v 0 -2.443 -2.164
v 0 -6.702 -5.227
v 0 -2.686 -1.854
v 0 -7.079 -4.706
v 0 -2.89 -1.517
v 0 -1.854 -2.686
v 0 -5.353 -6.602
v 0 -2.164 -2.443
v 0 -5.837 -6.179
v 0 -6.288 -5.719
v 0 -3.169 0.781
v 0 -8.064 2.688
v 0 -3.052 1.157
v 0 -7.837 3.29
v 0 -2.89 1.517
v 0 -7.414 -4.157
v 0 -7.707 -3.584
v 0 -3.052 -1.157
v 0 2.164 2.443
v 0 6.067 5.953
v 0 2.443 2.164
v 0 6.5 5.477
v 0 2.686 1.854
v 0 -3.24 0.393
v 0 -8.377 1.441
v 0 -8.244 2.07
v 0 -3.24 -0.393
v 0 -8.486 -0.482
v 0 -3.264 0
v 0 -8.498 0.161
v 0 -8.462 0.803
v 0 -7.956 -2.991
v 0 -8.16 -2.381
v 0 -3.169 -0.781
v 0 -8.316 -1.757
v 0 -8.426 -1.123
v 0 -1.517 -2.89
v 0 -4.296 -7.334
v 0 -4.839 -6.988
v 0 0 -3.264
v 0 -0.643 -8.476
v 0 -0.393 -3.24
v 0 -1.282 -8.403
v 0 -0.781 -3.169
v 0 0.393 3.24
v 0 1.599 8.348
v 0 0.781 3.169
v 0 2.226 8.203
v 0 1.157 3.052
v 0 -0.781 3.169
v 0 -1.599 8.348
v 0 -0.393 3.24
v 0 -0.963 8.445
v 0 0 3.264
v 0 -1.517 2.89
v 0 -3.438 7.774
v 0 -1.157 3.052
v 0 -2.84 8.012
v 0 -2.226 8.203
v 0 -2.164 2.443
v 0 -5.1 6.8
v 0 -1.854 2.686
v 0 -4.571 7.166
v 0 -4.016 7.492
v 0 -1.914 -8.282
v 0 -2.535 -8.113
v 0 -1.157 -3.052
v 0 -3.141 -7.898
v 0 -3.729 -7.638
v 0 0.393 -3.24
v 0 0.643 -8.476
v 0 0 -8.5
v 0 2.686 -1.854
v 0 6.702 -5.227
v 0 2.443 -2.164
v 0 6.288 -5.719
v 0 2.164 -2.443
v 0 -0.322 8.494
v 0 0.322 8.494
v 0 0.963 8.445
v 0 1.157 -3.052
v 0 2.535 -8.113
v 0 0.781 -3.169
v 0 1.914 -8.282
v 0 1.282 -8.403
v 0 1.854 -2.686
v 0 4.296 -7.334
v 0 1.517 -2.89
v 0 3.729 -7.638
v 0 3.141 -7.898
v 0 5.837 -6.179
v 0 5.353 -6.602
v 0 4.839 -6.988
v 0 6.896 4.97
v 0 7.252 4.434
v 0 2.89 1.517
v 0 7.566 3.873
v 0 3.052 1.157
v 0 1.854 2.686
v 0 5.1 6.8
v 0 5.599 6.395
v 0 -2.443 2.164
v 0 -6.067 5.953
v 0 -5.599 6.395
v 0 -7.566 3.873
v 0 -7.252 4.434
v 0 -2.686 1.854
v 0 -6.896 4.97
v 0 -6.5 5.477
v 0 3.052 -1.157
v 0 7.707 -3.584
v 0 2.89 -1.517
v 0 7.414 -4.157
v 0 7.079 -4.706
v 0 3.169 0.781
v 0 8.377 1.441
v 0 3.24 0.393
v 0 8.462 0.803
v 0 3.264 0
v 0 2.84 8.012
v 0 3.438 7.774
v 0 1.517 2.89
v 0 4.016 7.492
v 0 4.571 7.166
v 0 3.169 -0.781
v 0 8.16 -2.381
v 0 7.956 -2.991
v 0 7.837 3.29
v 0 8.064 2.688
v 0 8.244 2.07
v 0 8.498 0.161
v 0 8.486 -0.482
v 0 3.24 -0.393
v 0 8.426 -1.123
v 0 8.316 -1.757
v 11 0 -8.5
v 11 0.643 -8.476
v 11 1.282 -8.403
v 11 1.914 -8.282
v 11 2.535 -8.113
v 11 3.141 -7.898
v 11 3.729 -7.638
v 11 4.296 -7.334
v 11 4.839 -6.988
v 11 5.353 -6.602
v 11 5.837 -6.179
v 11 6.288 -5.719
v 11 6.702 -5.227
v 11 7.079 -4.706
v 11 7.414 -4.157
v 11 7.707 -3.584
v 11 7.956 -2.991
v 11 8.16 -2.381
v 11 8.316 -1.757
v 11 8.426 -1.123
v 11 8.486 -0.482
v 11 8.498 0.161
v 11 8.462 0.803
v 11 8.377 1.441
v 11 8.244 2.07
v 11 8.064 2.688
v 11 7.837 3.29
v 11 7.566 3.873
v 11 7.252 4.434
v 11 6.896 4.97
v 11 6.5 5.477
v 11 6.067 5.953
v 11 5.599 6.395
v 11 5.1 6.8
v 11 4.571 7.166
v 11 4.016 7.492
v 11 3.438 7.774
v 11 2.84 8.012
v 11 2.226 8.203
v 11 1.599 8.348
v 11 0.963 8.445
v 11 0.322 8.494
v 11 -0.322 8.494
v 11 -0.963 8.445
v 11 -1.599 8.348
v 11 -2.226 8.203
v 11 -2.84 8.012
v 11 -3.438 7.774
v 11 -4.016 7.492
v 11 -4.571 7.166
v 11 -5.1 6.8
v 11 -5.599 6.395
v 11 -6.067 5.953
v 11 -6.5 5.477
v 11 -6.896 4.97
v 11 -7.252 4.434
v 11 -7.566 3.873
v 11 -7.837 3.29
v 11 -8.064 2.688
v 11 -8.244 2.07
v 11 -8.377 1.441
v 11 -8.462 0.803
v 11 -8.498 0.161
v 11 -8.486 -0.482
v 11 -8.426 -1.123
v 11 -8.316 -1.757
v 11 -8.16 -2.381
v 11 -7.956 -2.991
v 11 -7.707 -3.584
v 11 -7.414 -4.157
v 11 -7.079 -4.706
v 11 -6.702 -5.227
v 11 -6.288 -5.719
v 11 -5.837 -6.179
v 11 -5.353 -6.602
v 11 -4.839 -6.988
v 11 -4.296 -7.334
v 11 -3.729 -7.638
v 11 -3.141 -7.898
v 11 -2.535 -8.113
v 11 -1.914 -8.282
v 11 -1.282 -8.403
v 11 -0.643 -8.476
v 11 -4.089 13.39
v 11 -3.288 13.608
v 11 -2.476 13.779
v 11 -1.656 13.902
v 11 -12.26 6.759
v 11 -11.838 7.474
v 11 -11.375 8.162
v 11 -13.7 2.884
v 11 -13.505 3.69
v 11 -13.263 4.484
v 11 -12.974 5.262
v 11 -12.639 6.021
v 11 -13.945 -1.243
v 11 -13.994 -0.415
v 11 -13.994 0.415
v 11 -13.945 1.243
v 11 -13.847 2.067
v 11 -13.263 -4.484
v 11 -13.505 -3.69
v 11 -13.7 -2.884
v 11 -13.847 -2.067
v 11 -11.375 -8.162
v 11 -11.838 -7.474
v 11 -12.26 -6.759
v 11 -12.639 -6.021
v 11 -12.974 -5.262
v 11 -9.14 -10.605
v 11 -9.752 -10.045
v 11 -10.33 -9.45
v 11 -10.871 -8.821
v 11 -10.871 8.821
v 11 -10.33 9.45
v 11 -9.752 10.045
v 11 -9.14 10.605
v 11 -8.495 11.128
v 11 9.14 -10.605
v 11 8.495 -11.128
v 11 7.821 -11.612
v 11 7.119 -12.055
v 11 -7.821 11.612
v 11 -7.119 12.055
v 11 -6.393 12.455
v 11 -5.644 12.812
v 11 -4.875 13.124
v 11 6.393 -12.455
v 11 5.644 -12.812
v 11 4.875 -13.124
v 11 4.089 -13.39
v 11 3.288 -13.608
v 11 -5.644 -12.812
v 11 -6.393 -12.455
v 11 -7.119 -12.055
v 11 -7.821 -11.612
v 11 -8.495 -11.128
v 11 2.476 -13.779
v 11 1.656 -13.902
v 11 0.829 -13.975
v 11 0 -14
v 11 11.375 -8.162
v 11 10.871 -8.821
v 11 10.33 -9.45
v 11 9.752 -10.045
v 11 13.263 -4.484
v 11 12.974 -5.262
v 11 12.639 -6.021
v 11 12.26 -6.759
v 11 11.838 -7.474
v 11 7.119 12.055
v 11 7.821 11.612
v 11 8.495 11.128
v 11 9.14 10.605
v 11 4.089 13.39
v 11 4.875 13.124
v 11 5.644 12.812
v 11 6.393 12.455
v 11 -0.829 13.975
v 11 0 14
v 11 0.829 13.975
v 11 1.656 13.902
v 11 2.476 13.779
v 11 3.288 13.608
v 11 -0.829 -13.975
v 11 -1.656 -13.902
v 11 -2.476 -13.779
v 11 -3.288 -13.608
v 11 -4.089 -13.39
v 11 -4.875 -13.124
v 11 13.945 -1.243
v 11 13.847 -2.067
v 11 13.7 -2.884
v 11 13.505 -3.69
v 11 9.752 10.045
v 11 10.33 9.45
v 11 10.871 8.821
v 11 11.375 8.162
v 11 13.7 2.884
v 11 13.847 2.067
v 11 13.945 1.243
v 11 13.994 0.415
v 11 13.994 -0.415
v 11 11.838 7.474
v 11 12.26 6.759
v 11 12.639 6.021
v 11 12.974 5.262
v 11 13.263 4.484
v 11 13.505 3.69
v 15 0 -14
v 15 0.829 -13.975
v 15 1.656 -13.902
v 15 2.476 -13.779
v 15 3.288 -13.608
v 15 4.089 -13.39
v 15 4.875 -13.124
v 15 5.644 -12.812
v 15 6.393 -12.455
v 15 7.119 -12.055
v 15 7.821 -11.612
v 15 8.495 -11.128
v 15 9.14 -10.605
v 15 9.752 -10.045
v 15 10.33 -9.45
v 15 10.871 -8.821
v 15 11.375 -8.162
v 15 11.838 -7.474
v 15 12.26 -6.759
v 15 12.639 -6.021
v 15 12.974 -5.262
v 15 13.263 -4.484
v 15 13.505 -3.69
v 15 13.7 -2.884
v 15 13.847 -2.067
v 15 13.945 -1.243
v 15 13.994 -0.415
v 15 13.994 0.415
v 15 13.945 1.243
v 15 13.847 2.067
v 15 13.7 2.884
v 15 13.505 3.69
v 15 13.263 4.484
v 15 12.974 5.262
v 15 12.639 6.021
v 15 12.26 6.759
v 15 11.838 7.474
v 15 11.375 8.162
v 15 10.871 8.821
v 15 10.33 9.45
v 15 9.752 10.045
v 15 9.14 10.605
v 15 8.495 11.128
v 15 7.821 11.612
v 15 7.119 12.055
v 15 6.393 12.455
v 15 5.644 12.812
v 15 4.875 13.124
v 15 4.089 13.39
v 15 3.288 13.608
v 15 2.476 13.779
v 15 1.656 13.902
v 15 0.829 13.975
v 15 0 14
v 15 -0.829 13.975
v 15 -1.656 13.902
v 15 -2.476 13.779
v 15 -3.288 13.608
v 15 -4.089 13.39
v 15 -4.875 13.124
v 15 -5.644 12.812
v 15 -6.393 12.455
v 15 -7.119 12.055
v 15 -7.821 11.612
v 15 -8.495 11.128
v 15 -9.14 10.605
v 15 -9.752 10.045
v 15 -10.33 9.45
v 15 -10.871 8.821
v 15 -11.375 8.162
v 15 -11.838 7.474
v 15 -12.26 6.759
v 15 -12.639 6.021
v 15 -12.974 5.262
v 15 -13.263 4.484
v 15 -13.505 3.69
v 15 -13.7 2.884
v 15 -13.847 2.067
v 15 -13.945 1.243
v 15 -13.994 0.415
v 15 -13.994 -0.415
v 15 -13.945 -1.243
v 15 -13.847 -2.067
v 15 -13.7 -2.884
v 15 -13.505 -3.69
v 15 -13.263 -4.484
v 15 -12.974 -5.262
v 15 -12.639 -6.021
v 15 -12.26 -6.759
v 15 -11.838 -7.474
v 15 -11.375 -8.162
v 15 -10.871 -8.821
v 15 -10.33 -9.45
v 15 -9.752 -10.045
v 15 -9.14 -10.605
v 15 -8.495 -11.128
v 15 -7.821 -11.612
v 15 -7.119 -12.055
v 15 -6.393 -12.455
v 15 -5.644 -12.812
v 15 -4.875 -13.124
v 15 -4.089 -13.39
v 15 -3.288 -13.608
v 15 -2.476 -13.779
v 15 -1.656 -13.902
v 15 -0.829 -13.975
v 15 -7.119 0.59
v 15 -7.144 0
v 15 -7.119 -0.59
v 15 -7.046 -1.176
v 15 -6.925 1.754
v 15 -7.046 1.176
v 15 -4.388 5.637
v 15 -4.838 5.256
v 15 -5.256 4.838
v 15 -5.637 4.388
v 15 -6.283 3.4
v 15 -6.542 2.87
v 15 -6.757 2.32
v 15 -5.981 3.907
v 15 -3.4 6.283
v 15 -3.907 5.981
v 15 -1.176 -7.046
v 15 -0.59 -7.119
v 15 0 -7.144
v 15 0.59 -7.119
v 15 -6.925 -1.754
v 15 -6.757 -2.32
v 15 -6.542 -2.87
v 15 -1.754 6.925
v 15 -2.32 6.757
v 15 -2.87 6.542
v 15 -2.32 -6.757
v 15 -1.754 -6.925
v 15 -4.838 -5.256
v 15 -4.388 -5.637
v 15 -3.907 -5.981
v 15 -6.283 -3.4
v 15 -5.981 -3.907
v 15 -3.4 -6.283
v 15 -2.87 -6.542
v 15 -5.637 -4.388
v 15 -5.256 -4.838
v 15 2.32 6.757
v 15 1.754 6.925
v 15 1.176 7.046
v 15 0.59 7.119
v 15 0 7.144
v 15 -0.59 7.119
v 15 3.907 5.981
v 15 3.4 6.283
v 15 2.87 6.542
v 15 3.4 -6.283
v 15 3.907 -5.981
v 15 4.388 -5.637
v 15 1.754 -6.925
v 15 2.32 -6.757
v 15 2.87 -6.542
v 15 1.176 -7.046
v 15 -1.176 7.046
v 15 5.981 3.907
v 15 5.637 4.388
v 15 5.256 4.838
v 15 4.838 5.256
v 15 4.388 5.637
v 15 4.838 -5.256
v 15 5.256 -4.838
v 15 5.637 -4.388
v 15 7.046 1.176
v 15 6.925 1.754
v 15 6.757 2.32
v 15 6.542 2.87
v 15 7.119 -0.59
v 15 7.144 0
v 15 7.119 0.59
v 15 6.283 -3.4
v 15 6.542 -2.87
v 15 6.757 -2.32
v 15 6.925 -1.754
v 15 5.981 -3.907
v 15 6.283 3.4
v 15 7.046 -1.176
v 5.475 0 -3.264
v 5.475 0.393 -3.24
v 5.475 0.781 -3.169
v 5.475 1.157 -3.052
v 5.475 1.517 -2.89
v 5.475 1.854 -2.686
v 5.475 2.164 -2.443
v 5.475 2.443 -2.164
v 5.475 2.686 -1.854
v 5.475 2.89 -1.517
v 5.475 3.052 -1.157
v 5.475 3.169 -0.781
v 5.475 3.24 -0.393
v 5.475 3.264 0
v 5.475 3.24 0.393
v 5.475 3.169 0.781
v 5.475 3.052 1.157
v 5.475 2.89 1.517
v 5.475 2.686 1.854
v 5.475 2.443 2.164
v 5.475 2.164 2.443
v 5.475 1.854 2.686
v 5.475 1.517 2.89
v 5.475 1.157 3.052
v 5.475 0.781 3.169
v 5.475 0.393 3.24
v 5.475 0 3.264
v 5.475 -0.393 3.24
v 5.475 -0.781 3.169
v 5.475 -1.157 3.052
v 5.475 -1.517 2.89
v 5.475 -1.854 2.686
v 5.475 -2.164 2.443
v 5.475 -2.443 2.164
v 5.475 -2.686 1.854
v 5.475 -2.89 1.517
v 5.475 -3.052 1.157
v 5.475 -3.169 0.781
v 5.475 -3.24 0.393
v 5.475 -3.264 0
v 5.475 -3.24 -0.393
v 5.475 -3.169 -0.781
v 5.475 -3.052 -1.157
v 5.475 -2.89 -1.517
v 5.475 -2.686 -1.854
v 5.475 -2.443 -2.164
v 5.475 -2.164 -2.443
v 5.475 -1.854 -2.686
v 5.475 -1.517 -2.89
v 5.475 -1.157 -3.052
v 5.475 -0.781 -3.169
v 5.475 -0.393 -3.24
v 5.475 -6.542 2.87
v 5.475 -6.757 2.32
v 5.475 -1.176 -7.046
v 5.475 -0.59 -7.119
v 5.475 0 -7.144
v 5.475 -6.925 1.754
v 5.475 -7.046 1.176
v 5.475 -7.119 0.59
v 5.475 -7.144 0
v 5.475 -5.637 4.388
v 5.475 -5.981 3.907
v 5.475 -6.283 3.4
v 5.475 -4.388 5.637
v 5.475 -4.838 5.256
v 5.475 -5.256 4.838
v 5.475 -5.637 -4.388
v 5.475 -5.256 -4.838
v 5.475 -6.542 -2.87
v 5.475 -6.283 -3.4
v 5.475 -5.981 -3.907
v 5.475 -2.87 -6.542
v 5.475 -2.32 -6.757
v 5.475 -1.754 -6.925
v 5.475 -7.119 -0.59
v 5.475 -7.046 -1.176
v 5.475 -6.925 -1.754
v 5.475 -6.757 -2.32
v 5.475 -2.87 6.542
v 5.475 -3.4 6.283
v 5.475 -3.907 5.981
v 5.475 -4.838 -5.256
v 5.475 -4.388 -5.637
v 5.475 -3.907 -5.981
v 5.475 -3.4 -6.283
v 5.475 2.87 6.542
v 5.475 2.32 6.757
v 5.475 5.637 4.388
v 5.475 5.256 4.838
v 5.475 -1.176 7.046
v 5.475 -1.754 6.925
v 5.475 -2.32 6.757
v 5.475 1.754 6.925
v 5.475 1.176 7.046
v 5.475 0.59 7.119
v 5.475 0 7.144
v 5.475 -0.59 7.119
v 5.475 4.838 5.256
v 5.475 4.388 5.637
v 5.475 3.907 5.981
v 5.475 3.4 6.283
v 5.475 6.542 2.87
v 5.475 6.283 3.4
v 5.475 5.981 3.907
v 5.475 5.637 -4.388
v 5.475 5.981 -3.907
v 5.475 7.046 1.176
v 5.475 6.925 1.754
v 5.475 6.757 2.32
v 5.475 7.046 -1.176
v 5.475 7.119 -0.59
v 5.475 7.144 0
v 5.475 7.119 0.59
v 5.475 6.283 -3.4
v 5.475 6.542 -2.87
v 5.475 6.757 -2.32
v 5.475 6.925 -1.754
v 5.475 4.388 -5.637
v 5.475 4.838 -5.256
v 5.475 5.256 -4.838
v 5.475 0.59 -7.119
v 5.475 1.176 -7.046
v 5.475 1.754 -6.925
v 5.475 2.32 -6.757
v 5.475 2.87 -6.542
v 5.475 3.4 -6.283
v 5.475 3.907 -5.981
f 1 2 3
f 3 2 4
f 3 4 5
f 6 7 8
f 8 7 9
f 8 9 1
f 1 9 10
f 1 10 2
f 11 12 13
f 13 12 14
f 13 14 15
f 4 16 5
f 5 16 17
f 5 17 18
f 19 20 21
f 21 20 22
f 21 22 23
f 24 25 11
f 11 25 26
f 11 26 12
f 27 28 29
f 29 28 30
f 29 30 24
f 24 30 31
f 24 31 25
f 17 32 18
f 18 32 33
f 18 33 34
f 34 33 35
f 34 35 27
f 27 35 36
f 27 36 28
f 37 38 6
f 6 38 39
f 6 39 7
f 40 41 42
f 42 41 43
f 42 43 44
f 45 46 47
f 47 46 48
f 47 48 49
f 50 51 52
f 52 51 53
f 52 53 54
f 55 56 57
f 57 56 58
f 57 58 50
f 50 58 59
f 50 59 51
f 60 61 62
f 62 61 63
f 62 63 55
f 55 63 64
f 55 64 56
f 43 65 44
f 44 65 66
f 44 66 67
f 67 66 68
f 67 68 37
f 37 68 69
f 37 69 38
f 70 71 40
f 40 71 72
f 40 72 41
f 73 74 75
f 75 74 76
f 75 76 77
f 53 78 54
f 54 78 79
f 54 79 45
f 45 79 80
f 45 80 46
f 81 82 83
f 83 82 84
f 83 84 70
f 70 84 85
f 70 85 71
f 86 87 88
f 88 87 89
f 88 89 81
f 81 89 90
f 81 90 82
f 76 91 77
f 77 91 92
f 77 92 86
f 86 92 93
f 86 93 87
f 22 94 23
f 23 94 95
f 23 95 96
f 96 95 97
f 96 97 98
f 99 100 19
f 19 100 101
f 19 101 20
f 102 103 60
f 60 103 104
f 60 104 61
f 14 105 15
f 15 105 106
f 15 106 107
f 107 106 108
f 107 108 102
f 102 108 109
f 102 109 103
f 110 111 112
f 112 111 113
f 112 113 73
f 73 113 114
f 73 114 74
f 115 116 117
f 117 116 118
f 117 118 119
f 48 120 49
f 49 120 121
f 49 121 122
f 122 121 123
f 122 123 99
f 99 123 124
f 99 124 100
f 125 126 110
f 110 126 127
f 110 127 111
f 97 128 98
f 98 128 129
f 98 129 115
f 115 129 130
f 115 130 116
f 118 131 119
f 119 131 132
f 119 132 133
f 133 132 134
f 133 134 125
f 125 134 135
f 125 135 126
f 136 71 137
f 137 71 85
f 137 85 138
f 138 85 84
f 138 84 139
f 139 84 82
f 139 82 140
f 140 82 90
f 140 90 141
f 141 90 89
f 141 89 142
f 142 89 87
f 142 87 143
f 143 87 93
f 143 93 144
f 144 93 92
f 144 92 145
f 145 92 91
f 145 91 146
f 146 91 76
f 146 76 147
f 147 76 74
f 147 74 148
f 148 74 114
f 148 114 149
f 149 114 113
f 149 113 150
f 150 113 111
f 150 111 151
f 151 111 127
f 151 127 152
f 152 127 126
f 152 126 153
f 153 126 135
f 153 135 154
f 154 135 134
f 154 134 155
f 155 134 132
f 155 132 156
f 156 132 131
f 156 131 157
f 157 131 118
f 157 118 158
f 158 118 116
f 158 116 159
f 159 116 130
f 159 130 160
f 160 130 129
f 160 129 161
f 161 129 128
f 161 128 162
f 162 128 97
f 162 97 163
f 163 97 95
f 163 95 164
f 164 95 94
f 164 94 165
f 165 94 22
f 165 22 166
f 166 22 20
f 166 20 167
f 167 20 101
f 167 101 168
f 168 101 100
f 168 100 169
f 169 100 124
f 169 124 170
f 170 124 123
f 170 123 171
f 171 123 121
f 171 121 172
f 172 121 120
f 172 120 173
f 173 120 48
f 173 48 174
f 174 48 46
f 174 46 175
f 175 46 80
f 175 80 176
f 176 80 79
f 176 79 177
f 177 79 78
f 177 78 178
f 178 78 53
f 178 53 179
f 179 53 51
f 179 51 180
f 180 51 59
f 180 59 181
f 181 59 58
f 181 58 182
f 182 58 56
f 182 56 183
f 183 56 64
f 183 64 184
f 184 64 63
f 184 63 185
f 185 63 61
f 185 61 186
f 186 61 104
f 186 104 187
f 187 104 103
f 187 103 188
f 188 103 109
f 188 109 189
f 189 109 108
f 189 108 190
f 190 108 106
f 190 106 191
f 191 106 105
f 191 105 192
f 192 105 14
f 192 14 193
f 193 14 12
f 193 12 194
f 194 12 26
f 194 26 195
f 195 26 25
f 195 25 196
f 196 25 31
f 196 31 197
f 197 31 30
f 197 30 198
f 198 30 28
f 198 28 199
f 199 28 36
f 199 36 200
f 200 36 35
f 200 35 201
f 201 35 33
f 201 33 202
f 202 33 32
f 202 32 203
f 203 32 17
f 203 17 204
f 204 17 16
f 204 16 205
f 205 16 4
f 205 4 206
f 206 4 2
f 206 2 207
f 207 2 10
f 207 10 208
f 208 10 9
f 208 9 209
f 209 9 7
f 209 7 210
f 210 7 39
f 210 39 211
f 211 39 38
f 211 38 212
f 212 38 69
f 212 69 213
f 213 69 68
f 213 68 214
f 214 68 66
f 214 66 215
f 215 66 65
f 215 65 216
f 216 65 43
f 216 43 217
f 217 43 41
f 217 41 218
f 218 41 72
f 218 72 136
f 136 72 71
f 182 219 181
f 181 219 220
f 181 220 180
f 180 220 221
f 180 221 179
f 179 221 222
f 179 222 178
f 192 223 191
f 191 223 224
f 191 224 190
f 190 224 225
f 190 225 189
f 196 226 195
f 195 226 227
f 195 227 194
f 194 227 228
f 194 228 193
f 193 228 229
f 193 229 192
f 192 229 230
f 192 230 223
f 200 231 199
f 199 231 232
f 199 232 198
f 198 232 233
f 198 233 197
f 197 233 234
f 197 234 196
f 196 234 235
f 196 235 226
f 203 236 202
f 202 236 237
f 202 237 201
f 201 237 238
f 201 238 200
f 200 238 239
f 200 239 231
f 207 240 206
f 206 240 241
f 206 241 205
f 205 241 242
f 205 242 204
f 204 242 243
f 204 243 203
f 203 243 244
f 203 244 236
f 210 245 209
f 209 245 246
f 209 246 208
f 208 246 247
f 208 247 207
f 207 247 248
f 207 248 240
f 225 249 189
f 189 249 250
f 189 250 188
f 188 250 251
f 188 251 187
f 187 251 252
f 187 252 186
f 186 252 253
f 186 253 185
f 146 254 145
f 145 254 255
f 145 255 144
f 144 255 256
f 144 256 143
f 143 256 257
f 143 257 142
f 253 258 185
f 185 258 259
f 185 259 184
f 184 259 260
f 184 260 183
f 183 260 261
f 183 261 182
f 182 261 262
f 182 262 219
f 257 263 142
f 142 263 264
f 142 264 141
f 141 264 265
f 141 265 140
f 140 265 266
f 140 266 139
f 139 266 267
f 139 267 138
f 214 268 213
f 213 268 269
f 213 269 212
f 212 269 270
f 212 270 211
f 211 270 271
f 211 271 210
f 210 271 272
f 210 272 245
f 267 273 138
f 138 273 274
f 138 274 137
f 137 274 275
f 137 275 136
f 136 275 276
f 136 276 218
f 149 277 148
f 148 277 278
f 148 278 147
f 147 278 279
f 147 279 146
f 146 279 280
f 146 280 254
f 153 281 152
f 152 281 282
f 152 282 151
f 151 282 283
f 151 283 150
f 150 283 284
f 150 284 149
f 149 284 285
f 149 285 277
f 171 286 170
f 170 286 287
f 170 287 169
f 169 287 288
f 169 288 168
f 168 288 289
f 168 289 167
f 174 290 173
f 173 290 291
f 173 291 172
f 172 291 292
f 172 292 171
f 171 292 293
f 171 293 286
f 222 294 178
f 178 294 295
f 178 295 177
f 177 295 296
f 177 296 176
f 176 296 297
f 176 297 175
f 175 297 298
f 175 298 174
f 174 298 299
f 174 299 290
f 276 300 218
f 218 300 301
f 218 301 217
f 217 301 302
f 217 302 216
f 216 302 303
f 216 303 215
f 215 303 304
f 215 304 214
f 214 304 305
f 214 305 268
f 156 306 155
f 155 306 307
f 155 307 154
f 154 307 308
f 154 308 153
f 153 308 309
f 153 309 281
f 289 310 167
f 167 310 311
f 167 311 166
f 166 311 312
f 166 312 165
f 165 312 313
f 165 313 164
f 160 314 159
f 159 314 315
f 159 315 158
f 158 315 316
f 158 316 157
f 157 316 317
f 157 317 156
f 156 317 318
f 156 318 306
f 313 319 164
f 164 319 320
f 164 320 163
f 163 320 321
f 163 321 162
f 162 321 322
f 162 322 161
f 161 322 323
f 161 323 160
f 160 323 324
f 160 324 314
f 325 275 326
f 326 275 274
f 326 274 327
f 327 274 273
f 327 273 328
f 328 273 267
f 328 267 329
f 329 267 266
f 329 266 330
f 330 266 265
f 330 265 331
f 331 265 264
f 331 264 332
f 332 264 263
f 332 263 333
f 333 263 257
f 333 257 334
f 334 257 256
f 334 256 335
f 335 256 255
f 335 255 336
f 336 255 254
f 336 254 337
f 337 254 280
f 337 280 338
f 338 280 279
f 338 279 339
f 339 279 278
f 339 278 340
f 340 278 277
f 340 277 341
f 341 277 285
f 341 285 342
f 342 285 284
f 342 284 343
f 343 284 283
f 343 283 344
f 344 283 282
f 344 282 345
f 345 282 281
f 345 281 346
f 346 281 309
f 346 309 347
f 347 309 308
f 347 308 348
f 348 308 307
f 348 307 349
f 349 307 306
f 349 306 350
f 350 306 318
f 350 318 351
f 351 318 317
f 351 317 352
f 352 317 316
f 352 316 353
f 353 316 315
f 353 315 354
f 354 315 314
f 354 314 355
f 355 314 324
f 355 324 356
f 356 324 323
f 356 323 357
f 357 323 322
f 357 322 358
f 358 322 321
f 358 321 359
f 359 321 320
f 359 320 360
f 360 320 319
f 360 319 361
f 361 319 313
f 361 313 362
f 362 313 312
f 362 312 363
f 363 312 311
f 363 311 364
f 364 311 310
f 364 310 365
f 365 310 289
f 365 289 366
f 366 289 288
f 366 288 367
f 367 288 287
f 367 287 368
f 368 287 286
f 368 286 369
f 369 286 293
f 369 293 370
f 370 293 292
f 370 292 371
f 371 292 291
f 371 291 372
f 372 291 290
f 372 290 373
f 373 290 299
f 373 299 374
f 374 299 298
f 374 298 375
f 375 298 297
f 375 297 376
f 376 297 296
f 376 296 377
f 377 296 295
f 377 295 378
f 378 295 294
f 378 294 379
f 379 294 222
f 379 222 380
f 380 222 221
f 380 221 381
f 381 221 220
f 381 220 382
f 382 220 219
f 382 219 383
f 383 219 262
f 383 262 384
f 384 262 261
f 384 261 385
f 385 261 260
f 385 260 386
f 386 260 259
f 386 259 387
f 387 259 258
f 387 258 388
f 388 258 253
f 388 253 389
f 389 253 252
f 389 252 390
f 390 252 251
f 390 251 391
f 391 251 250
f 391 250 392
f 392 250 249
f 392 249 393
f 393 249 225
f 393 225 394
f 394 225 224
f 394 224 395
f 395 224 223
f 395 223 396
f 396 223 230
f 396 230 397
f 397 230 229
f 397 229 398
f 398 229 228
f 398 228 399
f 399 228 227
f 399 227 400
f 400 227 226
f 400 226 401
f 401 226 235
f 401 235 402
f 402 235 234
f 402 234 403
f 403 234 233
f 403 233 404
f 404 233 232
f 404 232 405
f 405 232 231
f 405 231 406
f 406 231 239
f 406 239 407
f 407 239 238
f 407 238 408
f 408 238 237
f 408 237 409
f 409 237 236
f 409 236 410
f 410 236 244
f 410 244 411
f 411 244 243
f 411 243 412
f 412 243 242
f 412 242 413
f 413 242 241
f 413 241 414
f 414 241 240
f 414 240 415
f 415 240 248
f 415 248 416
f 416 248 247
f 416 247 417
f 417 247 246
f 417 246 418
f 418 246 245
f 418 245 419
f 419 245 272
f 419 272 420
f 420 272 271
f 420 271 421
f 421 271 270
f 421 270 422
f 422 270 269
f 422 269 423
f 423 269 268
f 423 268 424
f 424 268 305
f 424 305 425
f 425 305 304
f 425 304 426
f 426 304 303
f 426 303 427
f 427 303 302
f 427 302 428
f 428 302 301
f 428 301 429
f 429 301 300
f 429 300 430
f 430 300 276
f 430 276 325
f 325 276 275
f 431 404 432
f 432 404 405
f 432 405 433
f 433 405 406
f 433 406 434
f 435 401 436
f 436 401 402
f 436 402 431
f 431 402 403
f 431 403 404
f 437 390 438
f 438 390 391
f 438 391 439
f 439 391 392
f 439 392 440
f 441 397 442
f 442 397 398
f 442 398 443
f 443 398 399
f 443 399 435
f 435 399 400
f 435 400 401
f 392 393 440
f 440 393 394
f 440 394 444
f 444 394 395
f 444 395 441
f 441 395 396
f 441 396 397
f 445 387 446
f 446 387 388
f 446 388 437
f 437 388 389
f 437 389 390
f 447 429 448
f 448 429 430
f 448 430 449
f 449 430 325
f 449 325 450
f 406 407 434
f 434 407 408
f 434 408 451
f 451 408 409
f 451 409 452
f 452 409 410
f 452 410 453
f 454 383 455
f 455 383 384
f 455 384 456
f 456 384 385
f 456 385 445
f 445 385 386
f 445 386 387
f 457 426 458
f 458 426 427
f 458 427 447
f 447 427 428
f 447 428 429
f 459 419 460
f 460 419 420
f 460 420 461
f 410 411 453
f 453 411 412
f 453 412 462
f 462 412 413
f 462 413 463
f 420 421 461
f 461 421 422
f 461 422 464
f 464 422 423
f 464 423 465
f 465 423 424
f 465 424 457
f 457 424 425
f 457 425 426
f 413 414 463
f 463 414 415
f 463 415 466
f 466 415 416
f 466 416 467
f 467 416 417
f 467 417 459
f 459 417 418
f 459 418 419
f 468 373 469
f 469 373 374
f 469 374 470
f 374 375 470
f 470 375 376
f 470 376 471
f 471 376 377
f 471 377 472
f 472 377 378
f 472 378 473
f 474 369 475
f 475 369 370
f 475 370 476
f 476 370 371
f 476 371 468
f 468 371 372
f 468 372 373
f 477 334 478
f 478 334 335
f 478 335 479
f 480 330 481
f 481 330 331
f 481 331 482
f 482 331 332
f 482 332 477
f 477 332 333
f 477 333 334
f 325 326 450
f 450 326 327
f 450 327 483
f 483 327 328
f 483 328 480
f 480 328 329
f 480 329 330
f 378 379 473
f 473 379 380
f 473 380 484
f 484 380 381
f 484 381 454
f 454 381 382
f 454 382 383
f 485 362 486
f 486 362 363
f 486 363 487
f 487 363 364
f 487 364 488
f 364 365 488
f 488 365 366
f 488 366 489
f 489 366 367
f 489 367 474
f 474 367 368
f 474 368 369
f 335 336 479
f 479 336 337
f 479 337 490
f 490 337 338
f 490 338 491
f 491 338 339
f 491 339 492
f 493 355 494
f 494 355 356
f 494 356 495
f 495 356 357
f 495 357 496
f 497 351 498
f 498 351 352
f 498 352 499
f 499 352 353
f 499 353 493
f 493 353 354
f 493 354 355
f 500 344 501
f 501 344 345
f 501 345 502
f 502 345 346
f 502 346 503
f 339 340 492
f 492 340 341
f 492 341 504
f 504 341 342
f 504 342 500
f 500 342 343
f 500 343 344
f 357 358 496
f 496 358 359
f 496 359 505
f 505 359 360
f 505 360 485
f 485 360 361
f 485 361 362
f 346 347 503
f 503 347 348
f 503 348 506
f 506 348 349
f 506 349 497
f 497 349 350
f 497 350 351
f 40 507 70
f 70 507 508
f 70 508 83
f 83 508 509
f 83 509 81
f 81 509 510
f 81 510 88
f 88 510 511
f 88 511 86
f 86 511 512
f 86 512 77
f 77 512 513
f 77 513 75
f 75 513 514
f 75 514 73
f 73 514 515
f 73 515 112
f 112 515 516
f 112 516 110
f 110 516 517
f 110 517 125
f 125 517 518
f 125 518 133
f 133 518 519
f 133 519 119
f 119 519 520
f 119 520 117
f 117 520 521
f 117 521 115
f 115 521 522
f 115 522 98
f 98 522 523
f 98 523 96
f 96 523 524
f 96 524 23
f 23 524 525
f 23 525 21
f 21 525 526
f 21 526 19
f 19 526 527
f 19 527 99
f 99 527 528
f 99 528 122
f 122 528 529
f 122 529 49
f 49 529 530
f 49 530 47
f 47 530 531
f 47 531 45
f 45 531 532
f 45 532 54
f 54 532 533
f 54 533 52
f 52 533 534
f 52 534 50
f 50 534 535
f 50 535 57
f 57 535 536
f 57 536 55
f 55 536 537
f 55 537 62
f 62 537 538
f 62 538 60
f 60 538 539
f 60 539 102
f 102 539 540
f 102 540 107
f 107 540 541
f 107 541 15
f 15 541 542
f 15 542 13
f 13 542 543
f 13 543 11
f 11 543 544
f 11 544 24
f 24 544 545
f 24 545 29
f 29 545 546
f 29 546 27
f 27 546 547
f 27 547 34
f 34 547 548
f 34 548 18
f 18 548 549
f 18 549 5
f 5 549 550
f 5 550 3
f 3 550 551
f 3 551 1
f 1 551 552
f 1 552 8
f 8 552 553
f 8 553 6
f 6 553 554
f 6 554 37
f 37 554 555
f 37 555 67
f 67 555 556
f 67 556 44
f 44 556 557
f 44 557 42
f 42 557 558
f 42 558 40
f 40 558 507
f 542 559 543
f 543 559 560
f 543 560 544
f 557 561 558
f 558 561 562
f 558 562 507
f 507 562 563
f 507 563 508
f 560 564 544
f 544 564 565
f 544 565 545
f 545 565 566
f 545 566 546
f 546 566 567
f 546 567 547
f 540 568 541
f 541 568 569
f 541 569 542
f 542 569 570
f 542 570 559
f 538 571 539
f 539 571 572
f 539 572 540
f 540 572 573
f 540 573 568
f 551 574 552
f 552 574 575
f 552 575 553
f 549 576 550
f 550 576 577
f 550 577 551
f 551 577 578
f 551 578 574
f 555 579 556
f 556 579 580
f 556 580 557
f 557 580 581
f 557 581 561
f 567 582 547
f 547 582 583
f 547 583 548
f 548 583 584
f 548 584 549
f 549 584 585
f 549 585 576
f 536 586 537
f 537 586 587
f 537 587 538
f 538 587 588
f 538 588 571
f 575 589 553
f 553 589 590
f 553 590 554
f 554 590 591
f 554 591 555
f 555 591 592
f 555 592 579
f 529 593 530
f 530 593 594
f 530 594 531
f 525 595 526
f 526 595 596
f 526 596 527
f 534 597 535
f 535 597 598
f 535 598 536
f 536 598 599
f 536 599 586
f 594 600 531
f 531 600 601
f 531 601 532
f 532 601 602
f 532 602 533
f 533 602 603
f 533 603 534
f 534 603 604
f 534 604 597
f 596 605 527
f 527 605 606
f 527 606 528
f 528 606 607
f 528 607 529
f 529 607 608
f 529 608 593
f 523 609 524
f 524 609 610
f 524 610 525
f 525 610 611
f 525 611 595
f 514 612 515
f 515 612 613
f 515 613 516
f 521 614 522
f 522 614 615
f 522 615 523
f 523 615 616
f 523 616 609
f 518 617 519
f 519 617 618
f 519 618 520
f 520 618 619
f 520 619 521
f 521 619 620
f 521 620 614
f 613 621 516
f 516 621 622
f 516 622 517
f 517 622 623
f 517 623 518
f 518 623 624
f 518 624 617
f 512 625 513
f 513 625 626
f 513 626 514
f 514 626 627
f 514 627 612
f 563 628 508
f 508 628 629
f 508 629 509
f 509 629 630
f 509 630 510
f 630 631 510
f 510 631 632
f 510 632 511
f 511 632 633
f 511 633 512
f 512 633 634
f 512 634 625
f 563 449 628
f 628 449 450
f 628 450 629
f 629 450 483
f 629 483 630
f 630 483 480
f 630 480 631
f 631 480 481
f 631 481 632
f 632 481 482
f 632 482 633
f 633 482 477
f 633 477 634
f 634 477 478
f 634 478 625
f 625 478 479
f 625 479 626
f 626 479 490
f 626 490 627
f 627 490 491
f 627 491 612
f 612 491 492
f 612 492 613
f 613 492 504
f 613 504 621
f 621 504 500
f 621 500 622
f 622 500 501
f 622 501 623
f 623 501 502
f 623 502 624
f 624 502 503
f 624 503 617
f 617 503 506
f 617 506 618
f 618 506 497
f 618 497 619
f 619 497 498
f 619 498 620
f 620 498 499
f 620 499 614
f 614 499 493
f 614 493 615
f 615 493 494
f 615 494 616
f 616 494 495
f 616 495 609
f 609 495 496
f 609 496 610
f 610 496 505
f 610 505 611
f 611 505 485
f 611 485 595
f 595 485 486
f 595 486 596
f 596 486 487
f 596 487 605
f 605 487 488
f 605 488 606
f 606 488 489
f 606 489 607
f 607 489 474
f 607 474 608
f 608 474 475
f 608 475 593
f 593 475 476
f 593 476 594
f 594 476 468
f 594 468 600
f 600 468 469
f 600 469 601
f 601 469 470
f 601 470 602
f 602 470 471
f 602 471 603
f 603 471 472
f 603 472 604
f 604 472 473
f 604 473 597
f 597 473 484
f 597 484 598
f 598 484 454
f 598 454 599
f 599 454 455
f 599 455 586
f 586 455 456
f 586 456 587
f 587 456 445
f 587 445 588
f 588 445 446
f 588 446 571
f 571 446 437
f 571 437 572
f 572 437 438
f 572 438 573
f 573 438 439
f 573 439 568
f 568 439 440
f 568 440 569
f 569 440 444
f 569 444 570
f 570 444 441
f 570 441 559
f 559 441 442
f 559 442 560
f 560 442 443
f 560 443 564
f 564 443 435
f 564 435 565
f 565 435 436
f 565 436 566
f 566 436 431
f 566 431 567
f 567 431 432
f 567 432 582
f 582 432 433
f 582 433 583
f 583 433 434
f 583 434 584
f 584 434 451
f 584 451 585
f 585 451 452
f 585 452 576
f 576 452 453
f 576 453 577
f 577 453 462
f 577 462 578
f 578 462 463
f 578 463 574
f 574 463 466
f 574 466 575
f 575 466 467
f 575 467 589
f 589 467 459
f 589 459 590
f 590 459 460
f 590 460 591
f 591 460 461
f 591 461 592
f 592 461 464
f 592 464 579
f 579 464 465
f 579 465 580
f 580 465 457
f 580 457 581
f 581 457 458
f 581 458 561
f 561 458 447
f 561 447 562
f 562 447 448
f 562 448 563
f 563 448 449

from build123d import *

# Parameters (mm, degrees)
CBORE_FOR_1_4_BINDING_HEAD_MACHINE_SCREW_D           = 6.5278
CBORE_FOR_1_4_BINDING_HEAD_MACHINE_SCREW_DEPTH       = 303
CBORE_FOR_1_4_BINDING_HEAD_MACHINE_SCREW_CBORE_D     = 14.2875
CBORE_FOR_1_4_BINDING_HEAD_MACHINE_SCREW_CBORE_DEPTH = 9.525
CBORE_FOR_1_4_BINDING_HEAD_MACHINE_SCREW_TIP         = 1.961148974


with BuildPart() as part:
    # Sketch1 → Revolve1 (revolve)
    with BuildSketch(Plane.XY, mode=Mode.PRIVATE) as revolve1_sk:
        Polygon((0, 0), (0, 8.5), (11, 8.5), (11, 14), (15, 14), (15, 0), align=None)
    revolve(revolve1_sk.sketch.rotate(Axis((0, 0, 0), (-1, 0, 0)), 90), axis=Axis((0, 0, 0), (-1, 0, 0)))

    # CBORE for 1/4 Binding Head Machine Screw1
    with Locations(Plane(origin=(15, 0, 0), x_dir=(0, 0, -1), z_dir=(1, 0, 0))):
        with Locations((0, 0)):
            CounterBoreHole(CBORE_FOR_1_4_BINDING_HEAD_MACHINE_SCREW_D / 2, CBORE_FOR_1_4_BINDING_HEAD_MACHINE_SCREW_CBORE_D / 2, CBORE_FOR_1_4_BINDING_HEAD_MACHINE_SCREW_CBORE_DEPTH, depth=CBORE_FOR_1_4_BINDING_HEAD_MACHINE_SCREW_DEPTH)
            with Locations((0, 0, -(CBORE_FOR_1_4_BINDING_HEAD_MACHINE_SCREW_DEPTH + CBORE_FOR_1_4_BINDING_HEAD_MACHINE_SCREW_TIP / 2))):  # 118° drill point
                Cone(0, CBORE_FOR_1_4_BINDING_HEAD_MACHINE_SCREW_D / 2, CBORE_FOR_1_4_BINDING_HEAD_MACHINE_SCREW_TIP, mode=Mode.SUBTRACT)


solid = part.part
